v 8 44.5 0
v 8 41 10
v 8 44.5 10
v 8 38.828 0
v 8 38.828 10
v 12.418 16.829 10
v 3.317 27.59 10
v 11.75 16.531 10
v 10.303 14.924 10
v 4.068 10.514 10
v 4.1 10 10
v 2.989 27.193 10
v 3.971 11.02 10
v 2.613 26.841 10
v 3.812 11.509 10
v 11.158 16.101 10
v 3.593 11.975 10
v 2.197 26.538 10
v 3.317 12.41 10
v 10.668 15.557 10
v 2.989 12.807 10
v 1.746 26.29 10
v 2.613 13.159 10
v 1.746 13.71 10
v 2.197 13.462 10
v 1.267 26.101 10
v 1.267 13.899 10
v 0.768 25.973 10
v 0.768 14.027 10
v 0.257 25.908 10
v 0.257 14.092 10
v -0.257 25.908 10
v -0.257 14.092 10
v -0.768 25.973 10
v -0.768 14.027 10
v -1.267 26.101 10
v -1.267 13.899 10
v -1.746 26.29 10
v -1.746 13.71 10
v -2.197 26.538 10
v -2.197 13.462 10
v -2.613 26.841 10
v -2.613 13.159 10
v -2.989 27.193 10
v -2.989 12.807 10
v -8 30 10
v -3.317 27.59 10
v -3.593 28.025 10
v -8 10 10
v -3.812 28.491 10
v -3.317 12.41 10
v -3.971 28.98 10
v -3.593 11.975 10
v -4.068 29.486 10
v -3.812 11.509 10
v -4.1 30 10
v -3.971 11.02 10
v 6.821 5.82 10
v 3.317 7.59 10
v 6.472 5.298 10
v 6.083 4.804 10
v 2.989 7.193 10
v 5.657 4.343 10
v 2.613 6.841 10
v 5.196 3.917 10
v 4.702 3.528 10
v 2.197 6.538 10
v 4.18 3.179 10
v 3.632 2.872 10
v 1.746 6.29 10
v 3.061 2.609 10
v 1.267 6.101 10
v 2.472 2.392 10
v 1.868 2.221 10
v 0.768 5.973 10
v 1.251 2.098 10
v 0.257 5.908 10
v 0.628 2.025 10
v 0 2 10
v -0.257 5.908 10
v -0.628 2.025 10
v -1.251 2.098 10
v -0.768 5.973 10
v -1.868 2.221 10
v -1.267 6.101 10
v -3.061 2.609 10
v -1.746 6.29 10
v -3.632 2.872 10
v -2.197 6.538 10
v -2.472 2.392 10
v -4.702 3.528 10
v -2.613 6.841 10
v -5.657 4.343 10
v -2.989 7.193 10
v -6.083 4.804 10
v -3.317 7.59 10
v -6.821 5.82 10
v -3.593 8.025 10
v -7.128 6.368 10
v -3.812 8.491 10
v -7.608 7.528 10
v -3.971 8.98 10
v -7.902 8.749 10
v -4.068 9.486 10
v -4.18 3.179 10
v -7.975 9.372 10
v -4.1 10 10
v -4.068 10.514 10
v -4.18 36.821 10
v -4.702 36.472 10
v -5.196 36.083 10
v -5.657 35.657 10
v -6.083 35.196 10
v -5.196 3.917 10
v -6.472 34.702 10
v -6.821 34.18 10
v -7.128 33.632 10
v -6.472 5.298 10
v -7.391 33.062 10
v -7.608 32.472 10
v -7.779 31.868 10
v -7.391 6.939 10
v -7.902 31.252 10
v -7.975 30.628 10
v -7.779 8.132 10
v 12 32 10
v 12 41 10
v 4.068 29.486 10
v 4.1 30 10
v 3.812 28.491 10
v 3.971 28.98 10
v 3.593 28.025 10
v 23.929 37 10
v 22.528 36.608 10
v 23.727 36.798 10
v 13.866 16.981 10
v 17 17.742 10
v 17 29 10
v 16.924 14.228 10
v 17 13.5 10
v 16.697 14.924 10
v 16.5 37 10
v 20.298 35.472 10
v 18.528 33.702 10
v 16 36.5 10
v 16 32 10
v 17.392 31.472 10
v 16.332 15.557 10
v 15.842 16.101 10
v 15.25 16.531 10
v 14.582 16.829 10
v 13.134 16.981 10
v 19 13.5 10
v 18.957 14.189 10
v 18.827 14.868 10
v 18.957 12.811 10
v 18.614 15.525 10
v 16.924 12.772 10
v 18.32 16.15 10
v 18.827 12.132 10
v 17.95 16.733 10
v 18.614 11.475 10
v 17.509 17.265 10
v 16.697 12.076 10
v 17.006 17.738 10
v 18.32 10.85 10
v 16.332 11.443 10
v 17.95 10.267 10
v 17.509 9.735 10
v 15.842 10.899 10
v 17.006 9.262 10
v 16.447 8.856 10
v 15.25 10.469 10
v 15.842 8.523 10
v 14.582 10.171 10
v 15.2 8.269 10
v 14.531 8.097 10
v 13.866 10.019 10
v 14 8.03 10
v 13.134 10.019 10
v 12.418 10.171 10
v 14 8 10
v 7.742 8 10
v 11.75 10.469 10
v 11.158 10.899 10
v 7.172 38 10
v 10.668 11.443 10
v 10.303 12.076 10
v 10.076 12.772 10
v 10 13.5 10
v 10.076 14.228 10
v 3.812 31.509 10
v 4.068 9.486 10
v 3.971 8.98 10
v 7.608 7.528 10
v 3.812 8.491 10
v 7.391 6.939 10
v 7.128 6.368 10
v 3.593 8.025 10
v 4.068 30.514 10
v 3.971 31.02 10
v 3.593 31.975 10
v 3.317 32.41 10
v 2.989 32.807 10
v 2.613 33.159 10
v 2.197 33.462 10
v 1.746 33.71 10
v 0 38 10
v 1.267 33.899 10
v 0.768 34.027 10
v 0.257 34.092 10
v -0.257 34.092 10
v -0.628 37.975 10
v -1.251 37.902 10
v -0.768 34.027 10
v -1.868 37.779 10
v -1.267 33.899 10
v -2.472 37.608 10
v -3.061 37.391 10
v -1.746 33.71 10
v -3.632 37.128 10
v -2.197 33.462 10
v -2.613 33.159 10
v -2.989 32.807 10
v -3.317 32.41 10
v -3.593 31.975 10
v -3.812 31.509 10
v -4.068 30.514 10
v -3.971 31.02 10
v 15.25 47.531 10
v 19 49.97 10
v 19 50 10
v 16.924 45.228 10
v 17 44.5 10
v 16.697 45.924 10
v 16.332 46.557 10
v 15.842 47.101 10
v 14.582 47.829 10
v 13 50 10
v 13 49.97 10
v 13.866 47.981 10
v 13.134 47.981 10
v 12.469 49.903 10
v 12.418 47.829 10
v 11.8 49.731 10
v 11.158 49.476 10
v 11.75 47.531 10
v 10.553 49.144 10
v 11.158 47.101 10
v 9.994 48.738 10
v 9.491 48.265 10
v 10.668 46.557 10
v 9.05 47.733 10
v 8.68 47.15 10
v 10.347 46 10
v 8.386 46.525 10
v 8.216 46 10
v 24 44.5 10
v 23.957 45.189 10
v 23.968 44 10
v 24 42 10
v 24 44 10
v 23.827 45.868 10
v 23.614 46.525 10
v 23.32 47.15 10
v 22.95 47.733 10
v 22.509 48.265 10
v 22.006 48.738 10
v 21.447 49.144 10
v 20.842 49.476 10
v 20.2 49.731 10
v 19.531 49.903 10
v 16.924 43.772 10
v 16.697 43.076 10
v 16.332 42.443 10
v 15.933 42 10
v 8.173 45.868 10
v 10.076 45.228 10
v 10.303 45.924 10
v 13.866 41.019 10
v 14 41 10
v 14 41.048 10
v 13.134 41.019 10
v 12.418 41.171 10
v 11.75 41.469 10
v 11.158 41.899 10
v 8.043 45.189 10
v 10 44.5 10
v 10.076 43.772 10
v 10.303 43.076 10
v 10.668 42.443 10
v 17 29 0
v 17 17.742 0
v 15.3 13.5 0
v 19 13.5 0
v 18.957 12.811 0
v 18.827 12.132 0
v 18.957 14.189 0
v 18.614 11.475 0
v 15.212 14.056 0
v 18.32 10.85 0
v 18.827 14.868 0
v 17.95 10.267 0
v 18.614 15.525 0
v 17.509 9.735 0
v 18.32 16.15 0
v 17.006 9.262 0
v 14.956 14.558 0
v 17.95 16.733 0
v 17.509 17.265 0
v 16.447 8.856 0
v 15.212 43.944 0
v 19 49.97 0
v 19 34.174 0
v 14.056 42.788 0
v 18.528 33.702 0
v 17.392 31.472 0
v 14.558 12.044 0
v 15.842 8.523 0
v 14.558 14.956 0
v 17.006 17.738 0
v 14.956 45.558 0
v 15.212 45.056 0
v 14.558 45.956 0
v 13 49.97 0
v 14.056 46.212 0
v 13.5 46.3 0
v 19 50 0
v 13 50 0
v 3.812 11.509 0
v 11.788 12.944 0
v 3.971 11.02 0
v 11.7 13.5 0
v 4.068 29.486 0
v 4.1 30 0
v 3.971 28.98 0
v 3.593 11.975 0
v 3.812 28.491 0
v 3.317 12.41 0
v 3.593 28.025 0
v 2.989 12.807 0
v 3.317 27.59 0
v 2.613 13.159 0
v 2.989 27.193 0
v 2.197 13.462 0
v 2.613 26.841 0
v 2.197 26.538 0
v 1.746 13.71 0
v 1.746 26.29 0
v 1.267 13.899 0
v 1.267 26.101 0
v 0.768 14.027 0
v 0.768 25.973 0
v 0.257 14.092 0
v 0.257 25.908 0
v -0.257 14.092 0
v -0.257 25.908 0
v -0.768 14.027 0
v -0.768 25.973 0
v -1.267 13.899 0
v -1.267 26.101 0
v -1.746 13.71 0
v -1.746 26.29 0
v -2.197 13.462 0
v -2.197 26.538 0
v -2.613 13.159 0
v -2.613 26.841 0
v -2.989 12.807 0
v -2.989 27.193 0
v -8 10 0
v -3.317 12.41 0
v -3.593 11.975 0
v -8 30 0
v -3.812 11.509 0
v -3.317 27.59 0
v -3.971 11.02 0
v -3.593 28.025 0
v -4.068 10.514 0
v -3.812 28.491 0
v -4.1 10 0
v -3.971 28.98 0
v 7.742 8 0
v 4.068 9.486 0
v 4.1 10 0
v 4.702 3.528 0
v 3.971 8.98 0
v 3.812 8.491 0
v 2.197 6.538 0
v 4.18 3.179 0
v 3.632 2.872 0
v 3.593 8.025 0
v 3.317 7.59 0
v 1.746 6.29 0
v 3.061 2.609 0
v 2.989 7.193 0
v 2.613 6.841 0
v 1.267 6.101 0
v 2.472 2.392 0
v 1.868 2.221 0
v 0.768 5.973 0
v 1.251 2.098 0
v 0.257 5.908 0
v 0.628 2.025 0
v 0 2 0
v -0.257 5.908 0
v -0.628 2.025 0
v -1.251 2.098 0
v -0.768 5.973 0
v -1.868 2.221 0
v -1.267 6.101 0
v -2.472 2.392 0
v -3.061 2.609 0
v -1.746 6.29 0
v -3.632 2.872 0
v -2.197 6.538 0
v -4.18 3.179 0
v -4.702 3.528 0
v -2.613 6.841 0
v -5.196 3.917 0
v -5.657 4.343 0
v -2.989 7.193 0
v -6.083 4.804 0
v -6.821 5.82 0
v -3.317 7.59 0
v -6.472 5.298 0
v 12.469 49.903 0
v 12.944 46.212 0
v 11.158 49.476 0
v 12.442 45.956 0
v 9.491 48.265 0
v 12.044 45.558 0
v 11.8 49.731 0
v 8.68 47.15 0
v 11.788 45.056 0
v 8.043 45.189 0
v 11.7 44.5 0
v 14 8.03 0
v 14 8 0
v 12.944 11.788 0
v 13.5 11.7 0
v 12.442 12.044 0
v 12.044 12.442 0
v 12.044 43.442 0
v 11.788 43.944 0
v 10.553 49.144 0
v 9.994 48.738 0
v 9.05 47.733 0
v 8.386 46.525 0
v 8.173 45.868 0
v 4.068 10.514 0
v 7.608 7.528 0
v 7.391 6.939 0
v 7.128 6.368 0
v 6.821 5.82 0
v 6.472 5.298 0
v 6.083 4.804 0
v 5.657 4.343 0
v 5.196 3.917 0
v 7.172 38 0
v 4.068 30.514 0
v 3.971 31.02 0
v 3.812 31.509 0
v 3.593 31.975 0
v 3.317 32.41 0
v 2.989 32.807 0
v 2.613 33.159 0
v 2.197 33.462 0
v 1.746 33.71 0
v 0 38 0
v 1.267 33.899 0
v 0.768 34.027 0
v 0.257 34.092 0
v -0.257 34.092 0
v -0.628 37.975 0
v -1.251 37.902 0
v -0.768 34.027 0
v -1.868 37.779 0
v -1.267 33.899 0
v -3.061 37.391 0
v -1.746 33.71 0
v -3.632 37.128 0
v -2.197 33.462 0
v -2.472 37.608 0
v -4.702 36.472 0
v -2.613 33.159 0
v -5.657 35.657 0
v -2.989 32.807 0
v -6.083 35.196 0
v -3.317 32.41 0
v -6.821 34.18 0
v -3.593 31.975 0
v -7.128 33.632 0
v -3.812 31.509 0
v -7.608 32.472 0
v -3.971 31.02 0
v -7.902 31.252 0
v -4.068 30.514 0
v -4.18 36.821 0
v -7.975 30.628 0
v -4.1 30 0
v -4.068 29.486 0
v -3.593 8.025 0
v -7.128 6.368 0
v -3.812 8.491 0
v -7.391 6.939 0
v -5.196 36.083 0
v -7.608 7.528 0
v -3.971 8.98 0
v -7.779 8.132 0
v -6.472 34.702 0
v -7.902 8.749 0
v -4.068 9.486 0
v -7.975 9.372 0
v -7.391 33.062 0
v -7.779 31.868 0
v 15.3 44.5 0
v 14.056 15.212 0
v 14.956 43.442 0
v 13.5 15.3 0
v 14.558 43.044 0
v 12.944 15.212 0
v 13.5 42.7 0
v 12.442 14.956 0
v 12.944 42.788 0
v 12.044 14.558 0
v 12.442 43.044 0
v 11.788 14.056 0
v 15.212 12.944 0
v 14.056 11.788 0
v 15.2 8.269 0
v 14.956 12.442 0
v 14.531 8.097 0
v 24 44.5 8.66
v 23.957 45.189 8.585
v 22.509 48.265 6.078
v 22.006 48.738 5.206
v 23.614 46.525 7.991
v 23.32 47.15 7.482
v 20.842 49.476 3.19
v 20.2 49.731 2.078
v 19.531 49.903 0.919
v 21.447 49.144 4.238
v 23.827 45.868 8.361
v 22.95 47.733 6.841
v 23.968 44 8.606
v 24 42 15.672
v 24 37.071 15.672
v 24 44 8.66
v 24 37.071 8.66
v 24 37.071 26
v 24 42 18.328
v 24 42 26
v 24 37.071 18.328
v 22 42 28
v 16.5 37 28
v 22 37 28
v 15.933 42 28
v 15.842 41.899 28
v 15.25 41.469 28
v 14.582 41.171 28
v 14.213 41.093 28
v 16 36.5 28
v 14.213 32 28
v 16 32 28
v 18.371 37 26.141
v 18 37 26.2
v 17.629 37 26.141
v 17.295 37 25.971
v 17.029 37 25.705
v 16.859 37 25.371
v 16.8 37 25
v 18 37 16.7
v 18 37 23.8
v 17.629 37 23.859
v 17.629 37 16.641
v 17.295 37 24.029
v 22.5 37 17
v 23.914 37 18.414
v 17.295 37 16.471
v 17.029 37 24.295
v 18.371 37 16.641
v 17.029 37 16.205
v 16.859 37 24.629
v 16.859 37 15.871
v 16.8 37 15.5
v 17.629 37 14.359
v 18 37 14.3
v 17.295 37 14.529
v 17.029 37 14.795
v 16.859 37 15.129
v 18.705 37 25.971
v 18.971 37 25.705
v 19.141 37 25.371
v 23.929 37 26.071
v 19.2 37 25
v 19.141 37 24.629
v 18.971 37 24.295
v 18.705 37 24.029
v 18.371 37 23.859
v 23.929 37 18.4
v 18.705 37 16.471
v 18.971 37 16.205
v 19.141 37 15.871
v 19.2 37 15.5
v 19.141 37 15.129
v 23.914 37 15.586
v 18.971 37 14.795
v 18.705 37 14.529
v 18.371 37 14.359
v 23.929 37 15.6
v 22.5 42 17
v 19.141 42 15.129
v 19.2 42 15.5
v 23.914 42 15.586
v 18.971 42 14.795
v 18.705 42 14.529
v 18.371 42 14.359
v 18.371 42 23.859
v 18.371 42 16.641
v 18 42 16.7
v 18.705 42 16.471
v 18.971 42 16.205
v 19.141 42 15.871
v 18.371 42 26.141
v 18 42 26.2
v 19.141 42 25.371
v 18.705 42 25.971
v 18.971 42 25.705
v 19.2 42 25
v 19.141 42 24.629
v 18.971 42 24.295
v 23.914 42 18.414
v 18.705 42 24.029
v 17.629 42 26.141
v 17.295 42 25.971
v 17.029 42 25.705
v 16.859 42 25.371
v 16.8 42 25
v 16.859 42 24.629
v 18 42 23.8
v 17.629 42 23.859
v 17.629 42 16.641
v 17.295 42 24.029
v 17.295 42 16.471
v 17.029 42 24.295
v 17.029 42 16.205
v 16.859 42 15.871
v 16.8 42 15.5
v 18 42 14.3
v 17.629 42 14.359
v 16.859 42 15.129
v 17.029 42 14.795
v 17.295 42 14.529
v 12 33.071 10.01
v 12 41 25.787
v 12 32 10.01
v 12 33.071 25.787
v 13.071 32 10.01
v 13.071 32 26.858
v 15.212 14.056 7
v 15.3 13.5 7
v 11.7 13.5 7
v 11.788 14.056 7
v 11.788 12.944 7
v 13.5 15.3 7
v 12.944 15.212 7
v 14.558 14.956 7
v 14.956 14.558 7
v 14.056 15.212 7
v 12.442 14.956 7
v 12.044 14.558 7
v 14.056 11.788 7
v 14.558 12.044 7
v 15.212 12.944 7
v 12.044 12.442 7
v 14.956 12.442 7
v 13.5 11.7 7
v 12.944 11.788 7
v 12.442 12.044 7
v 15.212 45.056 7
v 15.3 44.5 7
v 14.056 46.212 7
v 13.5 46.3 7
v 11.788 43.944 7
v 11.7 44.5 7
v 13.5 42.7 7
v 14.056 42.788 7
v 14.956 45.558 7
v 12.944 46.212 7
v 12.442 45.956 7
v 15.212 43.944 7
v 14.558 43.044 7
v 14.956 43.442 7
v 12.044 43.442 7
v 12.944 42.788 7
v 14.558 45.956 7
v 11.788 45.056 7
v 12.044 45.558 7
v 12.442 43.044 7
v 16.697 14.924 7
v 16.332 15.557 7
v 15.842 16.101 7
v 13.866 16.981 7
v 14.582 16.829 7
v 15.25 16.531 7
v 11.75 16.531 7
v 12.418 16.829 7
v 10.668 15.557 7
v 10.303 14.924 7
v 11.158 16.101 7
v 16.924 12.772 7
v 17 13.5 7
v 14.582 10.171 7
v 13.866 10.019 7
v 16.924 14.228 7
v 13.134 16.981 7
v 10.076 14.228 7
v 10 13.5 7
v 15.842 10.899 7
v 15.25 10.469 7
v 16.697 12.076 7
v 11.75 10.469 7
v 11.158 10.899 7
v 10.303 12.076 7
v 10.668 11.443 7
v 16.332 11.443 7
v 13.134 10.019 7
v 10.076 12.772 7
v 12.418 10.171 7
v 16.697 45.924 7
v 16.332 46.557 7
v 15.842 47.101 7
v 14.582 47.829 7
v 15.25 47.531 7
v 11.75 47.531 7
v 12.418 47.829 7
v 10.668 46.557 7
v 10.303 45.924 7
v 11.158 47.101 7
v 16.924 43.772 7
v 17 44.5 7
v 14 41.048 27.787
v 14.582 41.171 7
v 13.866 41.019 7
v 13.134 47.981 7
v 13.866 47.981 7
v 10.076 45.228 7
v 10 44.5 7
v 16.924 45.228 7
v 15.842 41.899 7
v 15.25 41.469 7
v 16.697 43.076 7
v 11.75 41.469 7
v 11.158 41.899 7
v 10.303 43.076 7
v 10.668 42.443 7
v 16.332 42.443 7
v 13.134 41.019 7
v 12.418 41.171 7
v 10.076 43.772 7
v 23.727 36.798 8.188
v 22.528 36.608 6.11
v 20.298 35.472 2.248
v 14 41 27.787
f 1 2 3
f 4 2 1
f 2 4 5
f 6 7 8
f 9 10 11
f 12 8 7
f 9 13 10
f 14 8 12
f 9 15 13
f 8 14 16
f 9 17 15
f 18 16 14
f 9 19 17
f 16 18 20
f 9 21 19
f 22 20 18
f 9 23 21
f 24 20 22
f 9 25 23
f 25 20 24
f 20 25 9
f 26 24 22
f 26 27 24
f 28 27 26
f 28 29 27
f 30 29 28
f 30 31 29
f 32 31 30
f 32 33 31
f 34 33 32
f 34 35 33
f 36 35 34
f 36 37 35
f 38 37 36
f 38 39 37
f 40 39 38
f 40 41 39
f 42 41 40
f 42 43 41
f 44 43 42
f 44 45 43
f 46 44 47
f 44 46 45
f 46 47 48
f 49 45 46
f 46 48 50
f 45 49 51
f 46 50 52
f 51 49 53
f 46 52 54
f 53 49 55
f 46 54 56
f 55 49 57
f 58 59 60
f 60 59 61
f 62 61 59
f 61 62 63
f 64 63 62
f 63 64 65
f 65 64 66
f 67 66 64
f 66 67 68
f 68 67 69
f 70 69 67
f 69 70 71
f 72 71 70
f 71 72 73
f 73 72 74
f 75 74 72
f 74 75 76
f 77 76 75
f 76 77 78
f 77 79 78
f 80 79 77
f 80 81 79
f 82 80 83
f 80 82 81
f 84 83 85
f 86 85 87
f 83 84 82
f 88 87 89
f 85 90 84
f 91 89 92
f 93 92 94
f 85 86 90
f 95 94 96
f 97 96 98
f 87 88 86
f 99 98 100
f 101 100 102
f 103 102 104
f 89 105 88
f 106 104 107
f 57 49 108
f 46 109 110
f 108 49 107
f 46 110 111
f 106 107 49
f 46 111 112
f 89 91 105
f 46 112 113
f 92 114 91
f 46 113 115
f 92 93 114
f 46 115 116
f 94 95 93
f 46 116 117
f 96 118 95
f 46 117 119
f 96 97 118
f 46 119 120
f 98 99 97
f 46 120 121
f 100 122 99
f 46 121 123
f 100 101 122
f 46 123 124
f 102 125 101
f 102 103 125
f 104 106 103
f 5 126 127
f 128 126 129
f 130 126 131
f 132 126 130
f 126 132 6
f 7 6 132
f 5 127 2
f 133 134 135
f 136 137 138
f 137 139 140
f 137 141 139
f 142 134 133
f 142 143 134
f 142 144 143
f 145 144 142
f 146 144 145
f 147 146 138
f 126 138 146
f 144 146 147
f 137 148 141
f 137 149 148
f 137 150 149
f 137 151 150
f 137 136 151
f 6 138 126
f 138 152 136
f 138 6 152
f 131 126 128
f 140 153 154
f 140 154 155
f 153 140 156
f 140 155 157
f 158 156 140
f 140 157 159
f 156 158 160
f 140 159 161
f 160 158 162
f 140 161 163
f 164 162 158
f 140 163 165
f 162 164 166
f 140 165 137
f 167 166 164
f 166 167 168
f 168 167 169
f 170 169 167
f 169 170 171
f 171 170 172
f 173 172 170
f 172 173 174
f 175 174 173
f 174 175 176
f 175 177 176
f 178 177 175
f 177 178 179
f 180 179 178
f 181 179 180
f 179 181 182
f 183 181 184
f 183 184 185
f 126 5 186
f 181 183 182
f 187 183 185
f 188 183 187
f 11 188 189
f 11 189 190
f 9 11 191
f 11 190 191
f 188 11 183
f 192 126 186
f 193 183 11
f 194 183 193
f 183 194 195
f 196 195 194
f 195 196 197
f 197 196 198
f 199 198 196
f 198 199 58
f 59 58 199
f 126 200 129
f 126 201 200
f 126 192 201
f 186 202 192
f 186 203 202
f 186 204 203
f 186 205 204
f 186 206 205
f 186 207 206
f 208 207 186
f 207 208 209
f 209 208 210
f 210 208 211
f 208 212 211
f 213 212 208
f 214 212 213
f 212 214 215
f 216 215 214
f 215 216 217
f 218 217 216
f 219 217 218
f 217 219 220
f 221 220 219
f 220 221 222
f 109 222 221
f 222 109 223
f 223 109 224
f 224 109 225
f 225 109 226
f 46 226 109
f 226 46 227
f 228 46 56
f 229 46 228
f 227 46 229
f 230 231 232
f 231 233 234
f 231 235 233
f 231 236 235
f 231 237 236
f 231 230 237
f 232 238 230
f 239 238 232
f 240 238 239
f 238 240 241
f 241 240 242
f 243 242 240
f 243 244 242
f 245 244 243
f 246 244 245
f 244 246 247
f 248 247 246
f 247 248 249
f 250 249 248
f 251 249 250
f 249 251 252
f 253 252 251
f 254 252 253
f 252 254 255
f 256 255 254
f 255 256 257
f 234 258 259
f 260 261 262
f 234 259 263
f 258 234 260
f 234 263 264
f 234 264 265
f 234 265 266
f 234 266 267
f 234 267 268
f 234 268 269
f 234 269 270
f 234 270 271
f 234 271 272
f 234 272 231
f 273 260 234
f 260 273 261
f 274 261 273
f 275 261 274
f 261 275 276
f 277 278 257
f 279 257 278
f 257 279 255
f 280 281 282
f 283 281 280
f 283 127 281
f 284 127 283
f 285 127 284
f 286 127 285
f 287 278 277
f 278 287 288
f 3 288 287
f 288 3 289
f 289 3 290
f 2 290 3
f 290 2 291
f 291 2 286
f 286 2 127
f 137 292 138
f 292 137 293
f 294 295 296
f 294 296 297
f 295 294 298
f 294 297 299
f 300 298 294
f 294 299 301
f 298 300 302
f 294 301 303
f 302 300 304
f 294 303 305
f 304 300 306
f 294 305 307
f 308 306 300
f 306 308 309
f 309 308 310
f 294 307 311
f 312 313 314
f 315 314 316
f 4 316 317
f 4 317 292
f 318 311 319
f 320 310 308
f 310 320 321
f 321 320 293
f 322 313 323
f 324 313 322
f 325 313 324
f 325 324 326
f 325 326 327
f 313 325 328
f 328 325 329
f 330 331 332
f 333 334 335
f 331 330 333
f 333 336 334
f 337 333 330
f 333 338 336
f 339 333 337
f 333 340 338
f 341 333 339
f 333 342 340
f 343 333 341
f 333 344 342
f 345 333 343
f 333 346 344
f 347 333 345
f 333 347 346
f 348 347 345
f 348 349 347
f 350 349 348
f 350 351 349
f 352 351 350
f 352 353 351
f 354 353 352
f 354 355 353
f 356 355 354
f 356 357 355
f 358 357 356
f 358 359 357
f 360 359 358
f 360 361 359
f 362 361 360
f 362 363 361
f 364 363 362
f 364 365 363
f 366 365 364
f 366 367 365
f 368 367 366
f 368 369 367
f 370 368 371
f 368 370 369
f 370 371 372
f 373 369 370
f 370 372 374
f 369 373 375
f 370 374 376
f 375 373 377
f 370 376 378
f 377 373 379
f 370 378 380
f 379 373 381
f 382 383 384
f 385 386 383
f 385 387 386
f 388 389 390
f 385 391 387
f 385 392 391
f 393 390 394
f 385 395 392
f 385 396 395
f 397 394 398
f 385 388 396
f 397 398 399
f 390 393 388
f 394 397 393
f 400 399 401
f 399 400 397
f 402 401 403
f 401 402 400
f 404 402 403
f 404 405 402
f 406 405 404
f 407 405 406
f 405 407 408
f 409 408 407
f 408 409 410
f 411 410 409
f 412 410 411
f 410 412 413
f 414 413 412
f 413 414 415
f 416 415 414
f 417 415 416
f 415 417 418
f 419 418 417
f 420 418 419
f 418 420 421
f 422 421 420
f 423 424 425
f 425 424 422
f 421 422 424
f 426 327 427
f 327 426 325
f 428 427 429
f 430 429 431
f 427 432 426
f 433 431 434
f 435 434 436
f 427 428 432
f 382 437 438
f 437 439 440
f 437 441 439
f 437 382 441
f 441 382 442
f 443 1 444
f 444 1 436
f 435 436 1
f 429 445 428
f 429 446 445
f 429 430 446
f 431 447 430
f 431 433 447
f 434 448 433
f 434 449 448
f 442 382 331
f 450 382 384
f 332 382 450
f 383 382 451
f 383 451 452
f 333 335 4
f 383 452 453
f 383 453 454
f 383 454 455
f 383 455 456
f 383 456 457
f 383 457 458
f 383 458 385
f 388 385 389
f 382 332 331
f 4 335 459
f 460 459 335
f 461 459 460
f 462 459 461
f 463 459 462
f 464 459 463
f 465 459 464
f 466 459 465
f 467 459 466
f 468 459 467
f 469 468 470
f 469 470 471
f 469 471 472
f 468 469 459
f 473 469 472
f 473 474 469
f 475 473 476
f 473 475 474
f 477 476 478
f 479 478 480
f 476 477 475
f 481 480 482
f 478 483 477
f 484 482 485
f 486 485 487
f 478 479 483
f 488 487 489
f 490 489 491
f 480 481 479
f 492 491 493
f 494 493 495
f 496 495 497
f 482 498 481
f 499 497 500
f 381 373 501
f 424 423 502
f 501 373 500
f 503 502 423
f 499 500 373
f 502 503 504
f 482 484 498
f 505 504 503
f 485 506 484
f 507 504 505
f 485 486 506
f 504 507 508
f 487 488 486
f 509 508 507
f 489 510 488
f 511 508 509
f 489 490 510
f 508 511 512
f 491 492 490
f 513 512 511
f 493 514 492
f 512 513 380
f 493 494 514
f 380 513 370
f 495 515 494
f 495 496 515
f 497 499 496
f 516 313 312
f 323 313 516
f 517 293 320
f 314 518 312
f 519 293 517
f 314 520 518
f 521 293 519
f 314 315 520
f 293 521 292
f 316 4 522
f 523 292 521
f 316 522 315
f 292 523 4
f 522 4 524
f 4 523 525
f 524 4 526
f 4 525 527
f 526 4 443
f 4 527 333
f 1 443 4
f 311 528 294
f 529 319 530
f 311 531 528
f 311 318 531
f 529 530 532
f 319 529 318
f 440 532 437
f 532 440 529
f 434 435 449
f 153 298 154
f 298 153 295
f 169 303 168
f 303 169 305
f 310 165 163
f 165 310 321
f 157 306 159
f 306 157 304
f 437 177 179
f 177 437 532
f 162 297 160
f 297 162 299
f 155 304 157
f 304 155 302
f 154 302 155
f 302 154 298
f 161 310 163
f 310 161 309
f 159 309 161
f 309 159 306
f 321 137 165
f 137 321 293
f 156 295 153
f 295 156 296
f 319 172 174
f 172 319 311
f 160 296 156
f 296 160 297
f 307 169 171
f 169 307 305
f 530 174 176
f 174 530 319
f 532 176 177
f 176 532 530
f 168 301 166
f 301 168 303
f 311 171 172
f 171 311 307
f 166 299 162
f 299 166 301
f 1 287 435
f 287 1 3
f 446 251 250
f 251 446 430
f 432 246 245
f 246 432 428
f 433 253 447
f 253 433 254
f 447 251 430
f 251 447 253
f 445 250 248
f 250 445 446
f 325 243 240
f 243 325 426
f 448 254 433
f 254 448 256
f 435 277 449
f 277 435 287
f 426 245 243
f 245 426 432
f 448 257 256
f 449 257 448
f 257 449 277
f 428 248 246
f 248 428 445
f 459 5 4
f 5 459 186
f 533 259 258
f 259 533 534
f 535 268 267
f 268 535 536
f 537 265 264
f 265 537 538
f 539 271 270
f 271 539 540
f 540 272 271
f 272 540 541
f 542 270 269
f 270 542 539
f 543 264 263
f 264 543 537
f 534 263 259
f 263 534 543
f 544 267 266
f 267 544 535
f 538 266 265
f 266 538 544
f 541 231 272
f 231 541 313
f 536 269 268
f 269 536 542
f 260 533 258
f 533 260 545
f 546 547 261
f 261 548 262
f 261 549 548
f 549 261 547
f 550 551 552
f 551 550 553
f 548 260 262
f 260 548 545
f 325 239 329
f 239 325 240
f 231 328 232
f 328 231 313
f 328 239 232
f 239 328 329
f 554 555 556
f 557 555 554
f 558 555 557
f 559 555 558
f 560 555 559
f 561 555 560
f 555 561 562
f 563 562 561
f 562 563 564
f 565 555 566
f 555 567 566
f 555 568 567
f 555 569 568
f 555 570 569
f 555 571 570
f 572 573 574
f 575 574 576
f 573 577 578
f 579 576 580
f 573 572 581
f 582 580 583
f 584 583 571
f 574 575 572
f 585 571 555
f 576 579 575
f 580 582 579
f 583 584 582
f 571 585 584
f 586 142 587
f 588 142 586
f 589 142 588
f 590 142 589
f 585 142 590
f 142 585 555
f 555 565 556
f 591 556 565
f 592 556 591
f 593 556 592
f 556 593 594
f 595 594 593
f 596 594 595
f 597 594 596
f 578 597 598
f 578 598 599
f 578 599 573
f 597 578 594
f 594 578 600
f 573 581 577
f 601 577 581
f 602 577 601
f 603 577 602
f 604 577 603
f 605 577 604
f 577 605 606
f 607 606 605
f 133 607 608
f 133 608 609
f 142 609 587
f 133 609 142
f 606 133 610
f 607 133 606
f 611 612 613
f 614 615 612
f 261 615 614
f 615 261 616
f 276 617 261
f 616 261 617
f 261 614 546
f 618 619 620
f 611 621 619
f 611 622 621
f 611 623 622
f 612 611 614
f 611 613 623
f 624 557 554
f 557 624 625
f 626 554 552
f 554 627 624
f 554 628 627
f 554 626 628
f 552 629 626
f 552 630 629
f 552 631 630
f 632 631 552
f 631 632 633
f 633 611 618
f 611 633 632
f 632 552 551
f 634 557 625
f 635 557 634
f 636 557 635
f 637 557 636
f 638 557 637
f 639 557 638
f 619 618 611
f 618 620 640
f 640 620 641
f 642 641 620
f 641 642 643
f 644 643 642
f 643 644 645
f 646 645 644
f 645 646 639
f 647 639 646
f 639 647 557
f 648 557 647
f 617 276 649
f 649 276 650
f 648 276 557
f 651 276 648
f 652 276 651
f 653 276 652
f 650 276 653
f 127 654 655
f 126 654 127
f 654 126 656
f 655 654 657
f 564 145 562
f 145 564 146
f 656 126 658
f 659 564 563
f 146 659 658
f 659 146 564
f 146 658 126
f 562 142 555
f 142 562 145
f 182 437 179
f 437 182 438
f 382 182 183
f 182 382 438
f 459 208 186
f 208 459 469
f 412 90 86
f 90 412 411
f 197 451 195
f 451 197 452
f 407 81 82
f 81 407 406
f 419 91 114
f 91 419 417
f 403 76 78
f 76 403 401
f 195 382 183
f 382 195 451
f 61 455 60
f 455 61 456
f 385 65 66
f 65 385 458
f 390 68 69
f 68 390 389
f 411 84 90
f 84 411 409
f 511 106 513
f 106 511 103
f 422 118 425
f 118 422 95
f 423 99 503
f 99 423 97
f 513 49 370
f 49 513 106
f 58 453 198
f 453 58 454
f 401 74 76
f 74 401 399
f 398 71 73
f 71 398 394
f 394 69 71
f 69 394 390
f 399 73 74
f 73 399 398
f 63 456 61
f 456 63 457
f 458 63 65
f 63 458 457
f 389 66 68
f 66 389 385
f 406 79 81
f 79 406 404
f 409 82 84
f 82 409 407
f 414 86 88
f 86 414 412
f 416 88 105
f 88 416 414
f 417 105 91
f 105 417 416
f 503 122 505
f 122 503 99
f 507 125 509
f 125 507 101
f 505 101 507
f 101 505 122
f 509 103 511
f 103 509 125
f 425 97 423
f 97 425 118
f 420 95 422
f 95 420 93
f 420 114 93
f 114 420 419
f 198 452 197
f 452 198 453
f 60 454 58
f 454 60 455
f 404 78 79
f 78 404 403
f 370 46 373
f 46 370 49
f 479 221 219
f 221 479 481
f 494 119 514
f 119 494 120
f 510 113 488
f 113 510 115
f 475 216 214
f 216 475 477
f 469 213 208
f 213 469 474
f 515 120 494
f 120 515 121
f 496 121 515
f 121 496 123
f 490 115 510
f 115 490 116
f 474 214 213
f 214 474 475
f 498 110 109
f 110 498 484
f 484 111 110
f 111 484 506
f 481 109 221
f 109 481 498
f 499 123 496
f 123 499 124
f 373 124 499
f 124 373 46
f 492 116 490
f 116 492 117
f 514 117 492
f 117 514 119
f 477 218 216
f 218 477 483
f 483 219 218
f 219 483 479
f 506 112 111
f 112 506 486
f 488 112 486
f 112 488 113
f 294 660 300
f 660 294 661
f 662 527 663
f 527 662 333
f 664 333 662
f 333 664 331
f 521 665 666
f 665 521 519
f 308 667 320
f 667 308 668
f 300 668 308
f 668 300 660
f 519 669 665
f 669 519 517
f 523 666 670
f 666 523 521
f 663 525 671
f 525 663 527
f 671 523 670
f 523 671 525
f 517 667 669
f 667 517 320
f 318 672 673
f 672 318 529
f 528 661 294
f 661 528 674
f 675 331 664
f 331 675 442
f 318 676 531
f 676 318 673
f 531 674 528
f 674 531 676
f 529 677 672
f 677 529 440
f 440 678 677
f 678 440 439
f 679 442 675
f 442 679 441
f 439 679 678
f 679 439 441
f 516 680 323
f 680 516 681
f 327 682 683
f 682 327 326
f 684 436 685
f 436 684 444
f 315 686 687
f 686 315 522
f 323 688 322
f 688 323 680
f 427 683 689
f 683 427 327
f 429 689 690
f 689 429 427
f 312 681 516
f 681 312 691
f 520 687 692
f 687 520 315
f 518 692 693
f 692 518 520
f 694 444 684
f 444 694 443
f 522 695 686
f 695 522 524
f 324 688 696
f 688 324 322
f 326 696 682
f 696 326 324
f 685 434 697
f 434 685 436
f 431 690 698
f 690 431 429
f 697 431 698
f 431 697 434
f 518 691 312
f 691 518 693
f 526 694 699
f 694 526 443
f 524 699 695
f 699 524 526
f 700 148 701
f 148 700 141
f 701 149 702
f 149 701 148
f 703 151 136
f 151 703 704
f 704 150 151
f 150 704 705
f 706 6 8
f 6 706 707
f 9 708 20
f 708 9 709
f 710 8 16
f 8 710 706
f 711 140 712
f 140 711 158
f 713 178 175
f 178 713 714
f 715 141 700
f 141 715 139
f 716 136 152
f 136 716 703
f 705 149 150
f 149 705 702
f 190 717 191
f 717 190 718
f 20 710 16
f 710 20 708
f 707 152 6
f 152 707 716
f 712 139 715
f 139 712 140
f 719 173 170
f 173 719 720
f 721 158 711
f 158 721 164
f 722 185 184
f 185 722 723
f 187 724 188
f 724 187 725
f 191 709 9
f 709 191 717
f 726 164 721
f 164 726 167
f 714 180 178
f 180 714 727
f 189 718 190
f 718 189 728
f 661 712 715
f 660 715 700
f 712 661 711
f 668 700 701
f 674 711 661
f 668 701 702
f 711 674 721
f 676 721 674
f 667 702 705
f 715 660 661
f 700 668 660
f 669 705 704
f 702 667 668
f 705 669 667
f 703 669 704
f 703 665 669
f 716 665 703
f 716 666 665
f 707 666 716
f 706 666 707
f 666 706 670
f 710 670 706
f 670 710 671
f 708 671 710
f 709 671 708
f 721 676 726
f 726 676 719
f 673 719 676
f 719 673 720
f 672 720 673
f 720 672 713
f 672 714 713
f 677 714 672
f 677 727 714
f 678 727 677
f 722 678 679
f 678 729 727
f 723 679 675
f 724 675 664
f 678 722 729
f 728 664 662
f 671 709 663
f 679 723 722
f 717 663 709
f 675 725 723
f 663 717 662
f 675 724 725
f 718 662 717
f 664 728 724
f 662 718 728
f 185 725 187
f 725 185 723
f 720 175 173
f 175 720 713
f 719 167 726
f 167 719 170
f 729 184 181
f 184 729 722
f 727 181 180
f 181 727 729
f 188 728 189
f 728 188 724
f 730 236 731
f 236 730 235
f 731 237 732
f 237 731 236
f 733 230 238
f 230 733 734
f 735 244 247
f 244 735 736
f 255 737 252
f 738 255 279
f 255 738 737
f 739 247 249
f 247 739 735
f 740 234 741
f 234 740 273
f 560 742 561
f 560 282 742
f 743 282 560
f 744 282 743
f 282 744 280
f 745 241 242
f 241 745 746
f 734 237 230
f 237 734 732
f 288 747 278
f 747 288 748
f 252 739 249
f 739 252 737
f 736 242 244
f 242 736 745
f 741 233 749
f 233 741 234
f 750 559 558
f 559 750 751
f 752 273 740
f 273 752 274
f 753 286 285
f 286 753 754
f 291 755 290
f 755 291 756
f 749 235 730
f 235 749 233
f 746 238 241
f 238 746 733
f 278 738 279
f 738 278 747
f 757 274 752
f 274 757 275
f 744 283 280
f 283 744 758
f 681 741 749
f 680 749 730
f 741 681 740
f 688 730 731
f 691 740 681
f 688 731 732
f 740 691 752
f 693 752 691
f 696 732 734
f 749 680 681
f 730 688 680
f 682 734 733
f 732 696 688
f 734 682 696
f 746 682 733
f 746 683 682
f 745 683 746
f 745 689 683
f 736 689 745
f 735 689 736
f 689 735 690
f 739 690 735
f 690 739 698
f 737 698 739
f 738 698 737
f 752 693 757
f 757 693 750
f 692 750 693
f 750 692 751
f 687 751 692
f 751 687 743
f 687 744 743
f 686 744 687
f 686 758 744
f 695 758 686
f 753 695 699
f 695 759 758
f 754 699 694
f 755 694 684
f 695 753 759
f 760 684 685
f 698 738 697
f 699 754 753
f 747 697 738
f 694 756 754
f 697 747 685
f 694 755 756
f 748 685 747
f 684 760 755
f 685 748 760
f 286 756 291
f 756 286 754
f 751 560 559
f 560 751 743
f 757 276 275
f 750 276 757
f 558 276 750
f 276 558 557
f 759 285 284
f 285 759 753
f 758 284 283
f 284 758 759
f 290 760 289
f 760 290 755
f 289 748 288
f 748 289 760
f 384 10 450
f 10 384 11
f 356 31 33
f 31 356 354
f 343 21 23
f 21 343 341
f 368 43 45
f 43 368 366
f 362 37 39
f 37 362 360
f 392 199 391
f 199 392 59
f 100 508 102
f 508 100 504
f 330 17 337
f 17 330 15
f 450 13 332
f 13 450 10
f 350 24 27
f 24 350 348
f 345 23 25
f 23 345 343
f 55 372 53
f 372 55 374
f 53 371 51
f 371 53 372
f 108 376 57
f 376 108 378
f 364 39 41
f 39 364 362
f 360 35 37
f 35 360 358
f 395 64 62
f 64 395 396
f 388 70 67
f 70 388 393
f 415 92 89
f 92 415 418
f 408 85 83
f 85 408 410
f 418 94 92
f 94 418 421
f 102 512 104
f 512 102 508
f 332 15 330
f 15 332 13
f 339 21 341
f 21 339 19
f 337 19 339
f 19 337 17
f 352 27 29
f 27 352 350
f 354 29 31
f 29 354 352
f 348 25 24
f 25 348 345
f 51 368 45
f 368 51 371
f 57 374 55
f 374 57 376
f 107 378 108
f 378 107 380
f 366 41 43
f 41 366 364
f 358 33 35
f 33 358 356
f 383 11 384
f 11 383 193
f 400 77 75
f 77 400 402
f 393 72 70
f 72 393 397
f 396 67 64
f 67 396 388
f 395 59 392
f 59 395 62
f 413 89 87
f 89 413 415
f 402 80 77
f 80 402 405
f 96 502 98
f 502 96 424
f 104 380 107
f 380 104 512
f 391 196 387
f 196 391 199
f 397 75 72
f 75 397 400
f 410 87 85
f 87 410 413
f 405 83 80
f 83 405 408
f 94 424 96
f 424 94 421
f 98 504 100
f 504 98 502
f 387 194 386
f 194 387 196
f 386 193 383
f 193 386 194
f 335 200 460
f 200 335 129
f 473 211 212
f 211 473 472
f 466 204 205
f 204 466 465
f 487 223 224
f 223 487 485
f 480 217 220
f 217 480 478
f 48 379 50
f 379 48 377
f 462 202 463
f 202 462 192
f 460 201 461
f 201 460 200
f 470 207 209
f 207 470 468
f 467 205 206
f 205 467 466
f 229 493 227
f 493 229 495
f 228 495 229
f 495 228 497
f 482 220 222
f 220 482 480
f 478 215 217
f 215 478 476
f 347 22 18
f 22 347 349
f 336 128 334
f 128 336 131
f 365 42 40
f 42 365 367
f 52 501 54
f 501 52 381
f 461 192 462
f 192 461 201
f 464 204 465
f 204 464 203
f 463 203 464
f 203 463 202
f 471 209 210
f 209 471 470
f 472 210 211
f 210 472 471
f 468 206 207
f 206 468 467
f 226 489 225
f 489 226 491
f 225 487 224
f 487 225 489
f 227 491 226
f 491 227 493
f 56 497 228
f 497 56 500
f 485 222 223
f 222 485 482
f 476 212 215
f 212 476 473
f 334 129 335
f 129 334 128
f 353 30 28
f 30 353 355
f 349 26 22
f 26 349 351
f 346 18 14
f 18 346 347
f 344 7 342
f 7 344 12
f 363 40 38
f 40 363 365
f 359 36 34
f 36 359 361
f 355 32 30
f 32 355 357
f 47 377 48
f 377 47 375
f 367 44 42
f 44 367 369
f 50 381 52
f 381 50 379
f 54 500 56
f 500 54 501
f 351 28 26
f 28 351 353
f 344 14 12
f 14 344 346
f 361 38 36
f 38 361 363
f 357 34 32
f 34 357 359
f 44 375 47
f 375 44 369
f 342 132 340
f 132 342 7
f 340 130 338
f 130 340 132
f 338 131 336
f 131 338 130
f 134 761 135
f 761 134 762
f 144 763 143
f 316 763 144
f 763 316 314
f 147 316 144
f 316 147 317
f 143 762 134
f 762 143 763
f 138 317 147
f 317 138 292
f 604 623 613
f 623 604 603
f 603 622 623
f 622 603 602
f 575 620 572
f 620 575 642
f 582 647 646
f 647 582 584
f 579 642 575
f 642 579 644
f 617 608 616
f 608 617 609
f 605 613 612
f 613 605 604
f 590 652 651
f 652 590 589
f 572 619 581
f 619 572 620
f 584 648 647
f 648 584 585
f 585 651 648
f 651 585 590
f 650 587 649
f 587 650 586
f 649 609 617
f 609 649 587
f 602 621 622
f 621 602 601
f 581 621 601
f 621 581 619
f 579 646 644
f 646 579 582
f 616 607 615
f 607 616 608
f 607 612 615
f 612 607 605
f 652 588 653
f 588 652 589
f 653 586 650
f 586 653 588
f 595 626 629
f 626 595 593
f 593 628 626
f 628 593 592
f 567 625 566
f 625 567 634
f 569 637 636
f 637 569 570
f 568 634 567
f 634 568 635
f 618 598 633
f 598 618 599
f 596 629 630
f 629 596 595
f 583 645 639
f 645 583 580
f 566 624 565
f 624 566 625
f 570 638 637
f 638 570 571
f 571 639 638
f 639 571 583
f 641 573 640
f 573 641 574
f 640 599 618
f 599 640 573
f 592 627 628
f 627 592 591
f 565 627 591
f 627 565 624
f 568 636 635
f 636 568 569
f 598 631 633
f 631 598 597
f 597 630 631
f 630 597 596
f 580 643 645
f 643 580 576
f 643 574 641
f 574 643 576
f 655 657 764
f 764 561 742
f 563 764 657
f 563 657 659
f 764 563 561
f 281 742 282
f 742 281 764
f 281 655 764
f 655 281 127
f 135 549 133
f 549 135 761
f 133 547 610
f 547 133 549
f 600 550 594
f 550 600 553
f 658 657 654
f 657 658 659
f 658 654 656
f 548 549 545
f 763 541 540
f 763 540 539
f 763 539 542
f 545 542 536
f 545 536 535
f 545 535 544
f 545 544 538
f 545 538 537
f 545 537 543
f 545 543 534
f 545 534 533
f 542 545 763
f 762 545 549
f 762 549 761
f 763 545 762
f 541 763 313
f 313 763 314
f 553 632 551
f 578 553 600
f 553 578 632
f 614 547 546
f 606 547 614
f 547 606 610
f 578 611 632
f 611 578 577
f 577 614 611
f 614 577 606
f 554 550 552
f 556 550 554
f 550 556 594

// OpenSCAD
//Carbon i3 Modified

// PRUSA iteration3
// Y motor mount
// GNU GPL v3
// Josef Průša <iam@josefprusa.cz> and contributors
// http://www.reprap.org/wiki/Prusa_Mendel
// http://prusamendel.org

//include <configuration.scad>

module y_motor_base(){
 // Motor holding part
    translate(v = [29,-21+50,0]){
    translate(v = [-21+4.5,0,5]) cube(size = [9,31,10], center=true);
    translate(v = [-15.5,-15.5,0]) cylinder(h = 10, r=5.5, $fn=50);
    translate(v = [-15.5,+15.5,0]) cylinder(h = 10, r=5.5, $fn=50);
    translate([-21,7,0]) rotate([0,0,45]) cube([2, 2, 10]);    

    //end stop
    translate(v = [-10.5,+15.5,0]) cylinder(h = 10, r=5.5, $fn=50);
    translate([-12,0,0]) cube([7, 15, 10]);
    translate([-16,16,0]) cube([6, 5, 10]);
    translate([-21+6,8,0]) cube([12-2, 5, 28]);
    translate([-21+6-2,8-5,0]) cube([4, 10, 28]);
    translate([-21+9.5-2,7,0]) rotate([0,0,45]) cube([2, 2, 28]);    
  // Joins motor holder and rod plate
  translate(v = [-29,-21,0]) cube(size = [14,30,10]);
 }
 // Front holding part
 translate(v = [0,10,0]) cylinder(h = 10, r=8, $fn=80);
 translate(v = [0,20,5])cube(size = [16,20,10], center=true);	
 translate(v = [0,30,0])cylinder(h = 10, r=8, $fn=80);
}

module y_motor_holes(){
 translate(v = [29,-21+50,0]){
  // Screw head holes
  translate(v = [-15.5,-15.5,-1]) cylinder(h = 10, r=1.8, $fn=20);
  translate(v = [-15.5,+15.5,-1]) cylinder(h = 10, r=1.8, $fn=20);
  // Screw holes
  translate(v = [-15.5,-15.5,7]) cylinder(h = 7, r=3.5, $fn=30);
  translate(v = [-15.5,+15.5,7]) cylinder(h = 25, r=3.5, $fn=30);
 }
 translate(v = [0,10,-1]) cylinder(h = 12, r=4.1, $fn=50);	
 translate(v = [0,30,-1]) cylinder(h = 12, r=4.1, $fn=50);
 
 //endstop
    translate([25,29,0])  cylinder(h = 29, r=8, $fn=20); 
   
    translate([18,45,15.5]) rotate([90,0,0]) cylinder(h = 10, r=1.2, $fn=20);
    translate([18,42.2,15.5]) rotate([90,0,0]) cylinder(h = 2, r1=1.2, r2=0.8, $fn=20);
 
    translate([18,45,25.0]) rotate([90,0,0]) cylinder(h = 10, r=1.2, $fn=20);
    translate([18,42.2,25.0]) rotate([90,0,0]) cylinder(h = 2, r1=1.2, r2=0.8, $fn=20);
   
    // endstop corner cutout
    translate([-5-2,30,28]) rotate([0,45,0]) cube([15, 19, 15]);	
    translate([-1,41,10])  cube([15, 5, 19]);	
    translate([27,33,0]) rotate([0,0,45]) cube([5, 5, 28]);	
    translate([12-2,28,10.01]) rotate([0,0,45]) cube([5, 5, 28]);
    
    translate([19,32,0]) rotate([0,30,0]) cube([8, 20, 18]);	
    translate([24.5-2,32,17]) rotate([0,45,0]) cube([2, 20, 2]);	
    
    translate([23-2,32,29]) rotate([0,45,0]) cube([5, 20, 5]);	
}




//#translate([18,40,10]) cube([8, 5, 5]);	

// Final part
module y_motor(){
 difference(){
  y_motor_base();
  y_motor_holes();
 }
}

y_motor();
